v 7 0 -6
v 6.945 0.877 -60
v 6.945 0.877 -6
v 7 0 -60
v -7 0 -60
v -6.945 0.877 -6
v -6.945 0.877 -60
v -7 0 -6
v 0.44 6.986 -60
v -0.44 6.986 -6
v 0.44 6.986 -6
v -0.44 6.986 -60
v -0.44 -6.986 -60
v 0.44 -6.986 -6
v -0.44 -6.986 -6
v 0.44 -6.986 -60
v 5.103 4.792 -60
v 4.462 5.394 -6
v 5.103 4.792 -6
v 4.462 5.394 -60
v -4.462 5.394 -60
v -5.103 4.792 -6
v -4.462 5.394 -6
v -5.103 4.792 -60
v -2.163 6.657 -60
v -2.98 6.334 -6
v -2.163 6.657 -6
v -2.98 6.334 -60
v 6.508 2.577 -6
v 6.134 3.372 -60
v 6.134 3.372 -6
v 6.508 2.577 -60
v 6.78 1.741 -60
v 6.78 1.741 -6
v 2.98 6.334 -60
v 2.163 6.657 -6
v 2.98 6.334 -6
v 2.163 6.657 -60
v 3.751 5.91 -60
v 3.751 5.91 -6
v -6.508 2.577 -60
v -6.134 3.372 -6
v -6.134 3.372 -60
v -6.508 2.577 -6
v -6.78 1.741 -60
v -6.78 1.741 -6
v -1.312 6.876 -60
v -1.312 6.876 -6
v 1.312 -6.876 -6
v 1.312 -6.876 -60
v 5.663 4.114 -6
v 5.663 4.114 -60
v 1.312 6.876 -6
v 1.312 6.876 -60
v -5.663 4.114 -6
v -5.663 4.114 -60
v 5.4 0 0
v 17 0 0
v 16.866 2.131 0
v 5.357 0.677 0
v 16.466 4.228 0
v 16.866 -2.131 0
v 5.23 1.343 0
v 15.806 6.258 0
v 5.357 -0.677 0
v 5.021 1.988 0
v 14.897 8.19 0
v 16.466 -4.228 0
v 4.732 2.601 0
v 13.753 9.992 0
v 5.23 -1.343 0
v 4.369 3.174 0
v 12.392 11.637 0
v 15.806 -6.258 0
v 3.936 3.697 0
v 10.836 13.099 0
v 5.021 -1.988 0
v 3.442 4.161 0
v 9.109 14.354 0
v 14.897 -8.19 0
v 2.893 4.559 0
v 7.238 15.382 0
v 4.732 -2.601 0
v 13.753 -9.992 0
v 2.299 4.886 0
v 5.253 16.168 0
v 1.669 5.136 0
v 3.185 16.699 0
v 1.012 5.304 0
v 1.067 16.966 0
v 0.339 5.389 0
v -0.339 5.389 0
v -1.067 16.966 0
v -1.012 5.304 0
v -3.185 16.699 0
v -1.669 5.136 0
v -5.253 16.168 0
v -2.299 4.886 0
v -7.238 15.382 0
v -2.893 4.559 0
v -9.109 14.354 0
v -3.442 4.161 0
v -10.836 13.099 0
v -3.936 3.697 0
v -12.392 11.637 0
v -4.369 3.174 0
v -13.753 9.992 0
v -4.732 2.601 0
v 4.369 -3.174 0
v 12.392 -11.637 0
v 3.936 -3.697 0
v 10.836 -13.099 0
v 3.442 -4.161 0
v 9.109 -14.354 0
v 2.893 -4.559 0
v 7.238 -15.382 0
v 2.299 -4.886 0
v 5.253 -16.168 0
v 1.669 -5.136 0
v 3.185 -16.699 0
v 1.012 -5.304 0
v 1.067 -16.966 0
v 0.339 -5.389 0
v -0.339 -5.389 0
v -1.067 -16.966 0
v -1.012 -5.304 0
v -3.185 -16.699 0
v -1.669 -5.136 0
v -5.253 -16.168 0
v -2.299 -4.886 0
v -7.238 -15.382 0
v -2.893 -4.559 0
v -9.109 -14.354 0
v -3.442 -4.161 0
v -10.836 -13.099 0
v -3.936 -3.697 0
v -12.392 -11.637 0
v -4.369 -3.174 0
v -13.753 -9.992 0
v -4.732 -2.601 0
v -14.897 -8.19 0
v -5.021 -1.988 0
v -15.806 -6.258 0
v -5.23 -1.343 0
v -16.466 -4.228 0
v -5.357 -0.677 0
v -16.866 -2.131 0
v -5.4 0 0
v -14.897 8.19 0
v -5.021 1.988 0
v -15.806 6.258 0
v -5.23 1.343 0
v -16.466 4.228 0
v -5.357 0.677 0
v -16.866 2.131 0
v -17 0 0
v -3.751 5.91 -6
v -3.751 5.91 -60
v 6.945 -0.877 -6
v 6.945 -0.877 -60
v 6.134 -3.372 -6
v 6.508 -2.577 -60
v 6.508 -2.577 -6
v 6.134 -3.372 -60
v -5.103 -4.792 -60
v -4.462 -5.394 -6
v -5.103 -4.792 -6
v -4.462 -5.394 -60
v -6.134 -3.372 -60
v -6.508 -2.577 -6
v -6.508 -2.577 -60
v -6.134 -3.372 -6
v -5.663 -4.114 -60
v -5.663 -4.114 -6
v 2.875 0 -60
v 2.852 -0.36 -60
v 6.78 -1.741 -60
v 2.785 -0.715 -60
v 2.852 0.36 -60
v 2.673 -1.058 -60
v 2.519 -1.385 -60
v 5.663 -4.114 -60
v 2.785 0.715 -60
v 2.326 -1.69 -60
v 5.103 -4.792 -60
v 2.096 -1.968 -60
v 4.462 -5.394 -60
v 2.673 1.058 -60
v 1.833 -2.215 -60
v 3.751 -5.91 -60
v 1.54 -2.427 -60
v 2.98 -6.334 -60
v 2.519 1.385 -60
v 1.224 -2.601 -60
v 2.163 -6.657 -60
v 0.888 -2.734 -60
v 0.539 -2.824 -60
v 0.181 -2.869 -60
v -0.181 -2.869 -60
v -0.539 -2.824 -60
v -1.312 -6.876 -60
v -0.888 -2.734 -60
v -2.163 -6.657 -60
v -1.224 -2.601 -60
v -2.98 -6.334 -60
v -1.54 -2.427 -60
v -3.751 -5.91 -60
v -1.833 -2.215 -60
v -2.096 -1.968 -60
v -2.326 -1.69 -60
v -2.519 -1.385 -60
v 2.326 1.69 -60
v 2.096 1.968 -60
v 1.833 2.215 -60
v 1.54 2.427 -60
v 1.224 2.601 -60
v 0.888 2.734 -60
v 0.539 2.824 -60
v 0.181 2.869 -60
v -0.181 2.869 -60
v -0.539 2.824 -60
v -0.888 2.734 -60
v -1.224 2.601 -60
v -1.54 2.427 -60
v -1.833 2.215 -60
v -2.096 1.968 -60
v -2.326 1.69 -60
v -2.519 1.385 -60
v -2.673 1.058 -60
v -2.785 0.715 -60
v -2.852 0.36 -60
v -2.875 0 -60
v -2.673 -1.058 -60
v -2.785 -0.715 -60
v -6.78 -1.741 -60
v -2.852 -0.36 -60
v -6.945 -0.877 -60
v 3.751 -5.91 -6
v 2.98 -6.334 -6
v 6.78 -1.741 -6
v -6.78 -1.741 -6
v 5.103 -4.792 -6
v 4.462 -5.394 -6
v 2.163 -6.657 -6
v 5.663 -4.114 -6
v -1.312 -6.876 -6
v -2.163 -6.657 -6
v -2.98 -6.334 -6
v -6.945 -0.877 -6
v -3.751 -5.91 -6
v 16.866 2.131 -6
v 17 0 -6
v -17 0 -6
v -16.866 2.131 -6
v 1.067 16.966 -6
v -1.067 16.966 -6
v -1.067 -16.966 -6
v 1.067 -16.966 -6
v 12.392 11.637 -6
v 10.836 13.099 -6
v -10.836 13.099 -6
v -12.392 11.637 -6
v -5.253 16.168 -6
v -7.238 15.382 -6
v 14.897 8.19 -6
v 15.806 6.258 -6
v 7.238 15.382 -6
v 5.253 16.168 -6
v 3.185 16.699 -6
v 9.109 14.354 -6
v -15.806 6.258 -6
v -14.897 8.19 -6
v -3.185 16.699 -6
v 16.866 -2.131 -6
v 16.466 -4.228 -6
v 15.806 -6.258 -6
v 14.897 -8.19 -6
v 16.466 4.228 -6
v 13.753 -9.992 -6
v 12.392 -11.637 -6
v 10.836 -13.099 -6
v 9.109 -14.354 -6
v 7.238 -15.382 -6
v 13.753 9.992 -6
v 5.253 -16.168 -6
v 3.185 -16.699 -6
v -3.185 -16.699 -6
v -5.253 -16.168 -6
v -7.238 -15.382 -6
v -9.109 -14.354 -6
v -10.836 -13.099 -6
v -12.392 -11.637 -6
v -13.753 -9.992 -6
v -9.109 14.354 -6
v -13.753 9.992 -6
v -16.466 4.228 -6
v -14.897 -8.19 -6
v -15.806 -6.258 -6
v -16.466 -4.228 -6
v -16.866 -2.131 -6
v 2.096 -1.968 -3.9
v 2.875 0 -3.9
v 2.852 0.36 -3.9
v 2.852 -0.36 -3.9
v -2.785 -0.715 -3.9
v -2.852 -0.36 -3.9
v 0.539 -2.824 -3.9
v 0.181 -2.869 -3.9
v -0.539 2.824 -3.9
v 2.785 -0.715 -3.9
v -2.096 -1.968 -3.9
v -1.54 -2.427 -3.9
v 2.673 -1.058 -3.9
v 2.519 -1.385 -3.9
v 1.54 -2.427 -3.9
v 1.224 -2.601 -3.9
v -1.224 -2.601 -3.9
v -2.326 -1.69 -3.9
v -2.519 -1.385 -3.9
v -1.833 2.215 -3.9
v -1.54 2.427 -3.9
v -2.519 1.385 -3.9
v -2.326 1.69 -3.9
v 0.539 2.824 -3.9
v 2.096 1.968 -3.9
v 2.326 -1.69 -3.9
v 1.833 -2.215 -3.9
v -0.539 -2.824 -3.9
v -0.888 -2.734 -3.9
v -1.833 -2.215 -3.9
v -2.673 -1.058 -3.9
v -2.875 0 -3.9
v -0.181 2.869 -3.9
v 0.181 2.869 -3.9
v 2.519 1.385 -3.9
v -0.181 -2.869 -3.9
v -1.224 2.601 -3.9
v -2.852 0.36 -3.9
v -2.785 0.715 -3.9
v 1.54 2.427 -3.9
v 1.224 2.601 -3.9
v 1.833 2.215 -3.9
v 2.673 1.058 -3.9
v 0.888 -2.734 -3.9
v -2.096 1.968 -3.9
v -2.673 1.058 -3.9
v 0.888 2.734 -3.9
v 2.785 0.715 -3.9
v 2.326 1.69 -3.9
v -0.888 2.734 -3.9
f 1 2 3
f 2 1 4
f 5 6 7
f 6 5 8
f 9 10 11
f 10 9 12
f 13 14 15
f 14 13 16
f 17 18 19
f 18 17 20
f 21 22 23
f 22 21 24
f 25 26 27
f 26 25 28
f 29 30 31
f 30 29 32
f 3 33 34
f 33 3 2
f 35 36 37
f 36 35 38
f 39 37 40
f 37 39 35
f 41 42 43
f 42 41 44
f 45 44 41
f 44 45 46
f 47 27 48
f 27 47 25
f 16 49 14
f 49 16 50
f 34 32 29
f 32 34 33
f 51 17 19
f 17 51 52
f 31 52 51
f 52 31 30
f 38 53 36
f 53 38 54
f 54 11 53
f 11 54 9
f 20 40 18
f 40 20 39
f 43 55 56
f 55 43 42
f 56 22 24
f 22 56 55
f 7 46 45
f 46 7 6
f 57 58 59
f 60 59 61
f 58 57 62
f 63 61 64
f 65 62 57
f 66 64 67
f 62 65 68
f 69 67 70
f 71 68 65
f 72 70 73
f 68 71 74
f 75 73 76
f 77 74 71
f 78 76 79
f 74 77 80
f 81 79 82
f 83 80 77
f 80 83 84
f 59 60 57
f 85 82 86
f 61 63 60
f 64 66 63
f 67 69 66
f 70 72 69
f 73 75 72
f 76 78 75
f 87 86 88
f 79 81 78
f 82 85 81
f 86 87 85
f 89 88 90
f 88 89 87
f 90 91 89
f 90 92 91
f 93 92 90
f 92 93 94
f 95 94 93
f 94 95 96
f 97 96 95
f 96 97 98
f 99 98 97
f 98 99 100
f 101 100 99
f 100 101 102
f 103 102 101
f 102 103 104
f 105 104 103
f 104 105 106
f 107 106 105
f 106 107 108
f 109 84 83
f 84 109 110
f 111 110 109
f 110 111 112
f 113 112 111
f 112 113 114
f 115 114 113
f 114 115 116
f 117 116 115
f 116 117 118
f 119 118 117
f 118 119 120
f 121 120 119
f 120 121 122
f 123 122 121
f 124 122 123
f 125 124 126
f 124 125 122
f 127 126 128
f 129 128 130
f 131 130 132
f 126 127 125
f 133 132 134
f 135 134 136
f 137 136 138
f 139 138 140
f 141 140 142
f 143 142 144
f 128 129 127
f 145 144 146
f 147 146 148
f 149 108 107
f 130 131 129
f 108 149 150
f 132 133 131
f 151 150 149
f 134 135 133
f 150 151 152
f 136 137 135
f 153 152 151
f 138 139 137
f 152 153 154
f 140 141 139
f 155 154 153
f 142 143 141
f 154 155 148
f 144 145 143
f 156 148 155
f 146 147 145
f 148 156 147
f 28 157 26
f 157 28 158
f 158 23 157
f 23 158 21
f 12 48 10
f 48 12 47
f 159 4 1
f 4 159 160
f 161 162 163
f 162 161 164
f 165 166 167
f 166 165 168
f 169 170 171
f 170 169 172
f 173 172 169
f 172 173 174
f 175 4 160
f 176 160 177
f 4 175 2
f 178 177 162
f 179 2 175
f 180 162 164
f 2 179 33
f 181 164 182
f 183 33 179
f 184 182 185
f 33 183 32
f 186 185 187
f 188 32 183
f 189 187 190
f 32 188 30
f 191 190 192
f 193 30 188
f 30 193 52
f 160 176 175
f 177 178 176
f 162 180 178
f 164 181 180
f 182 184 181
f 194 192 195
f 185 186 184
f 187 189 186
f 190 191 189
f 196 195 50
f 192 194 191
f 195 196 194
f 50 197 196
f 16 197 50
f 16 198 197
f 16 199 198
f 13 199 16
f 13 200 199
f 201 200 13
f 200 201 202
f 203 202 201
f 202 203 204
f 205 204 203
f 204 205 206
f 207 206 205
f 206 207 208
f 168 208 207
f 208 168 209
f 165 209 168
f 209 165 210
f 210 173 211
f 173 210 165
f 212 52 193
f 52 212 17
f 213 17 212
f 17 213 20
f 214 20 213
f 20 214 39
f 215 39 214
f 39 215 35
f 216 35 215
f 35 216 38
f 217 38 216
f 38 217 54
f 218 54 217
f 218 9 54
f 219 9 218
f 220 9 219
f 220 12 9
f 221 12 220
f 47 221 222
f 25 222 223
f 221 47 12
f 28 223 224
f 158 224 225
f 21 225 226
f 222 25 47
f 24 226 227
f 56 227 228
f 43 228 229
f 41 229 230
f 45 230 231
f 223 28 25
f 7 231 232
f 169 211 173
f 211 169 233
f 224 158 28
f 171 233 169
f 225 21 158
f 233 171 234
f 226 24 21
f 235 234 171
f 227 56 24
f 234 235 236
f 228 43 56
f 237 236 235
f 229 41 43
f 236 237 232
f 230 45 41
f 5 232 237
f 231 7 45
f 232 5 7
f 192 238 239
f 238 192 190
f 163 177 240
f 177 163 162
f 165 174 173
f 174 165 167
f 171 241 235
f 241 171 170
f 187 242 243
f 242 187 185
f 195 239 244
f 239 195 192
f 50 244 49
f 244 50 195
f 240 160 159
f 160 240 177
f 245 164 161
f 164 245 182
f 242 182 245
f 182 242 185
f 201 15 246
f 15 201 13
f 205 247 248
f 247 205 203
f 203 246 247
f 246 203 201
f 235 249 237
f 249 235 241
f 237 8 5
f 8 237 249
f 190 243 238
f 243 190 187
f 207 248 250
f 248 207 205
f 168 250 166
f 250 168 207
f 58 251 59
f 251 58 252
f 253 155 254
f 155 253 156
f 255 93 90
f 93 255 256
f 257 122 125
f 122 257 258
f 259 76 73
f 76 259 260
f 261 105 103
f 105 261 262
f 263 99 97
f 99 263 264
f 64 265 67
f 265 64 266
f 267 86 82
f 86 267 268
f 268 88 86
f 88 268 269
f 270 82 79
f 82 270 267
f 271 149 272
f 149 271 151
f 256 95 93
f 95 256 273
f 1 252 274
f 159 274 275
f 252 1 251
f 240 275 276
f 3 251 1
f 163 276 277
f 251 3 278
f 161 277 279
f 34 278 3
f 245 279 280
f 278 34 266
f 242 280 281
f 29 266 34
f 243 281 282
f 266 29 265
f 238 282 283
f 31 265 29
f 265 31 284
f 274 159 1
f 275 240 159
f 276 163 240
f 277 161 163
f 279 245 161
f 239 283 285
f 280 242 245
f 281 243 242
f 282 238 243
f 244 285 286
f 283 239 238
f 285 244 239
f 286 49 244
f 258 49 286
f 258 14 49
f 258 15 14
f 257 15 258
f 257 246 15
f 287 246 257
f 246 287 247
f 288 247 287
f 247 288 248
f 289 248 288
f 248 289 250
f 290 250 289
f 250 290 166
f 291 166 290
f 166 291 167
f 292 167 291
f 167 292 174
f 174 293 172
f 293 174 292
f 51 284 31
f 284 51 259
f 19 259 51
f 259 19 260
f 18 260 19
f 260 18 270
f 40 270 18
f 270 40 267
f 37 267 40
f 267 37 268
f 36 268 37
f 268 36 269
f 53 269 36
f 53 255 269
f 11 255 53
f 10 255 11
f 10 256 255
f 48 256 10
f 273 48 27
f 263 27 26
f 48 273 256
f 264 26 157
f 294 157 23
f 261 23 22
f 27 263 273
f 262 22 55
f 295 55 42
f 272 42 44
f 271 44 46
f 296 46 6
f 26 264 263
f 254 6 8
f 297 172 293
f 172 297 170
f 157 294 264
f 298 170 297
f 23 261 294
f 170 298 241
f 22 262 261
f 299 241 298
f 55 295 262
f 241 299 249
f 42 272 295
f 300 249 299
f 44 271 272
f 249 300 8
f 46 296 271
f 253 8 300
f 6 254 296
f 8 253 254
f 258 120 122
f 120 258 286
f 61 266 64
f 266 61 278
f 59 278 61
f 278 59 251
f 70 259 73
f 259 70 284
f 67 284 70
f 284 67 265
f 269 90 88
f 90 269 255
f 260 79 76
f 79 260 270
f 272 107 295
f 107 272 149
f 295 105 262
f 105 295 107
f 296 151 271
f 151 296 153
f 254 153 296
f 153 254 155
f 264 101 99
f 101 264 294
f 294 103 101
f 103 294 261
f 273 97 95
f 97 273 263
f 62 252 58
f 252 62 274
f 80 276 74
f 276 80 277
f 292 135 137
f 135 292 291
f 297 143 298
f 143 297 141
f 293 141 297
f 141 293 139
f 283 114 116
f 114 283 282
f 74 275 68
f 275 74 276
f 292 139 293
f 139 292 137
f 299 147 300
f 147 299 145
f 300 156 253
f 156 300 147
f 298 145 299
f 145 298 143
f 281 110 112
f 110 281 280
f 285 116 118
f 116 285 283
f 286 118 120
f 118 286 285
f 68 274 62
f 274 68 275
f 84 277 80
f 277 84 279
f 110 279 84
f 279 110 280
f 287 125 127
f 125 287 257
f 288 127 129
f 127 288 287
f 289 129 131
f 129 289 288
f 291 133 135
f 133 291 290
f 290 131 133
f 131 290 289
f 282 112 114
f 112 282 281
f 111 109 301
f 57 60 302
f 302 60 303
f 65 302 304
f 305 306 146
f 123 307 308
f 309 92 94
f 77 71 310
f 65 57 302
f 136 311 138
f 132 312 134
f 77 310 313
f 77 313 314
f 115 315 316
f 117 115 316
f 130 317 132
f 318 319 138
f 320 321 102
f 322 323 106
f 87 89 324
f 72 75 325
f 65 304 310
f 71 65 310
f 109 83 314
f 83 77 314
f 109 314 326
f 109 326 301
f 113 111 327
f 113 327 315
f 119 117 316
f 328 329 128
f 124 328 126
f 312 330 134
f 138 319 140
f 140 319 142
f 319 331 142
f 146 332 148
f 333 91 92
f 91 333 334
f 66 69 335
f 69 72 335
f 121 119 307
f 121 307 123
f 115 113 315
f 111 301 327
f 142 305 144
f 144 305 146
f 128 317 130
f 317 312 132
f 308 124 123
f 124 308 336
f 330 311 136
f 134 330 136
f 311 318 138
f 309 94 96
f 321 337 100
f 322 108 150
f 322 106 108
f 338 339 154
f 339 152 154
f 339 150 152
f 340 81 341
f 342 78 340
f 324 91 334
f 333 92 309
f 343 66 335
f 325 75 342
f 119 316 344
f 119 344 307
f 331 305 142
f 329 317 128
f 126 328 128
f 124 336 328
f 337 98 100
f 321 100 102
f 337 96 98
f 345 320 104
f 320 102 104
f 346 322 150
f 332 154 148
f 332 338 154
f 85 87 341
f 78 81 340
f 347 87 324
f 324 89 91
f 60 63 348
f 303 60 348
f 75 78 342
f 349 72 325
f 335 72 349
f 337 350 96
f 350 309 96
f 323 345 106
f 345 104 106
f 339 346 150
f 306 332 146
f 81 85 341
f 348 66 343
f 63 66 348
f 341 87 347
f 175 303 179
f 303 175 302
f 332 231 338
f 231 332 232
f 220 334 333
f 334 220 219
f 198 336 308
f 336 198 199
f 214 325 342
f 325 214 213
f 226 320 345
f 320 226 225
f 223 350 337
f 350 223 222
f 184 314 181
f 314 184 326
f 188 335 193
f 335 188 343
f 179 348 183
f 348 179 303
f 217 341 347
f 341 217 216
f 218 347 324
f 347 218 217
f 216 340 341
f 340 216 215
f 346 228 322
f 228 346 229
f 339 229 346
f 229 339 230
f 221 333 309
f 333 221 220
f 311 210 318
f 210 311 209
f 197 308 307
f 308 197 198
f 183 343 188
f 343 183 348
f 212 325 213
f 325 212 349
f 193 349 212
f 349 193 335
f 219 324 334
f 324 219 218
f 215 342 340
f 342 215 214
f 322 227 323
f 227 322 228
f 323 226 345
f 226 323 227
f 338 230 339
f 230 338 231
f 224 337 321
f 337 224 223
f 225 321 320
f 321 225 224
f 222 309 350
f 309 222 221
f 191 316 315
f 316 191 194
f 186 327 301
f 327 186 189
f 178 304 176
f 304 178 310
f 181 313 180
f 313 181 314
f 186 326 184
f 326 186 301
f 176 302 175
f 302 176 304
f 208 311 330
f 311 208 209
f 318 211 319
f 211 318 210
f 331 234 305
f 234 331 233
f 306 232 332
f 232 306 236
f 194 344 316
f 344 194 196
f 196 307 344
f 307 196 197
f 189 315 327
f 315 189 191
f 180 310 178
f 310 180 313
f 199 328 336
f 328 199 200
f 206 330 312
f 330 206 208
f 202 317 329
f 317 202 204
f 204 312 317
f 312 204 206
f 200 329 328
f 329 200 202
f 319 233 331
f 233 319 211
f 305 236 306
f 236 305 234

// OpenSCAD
$fn = 50;


difference() {
	union() {
		translate(v = [0, 0, -60.0000000000]) {
			cylinder(h = 60, r = 7.0000000000);
		}
		translate(v = [0, 0, -6.0000000000]) {
			cylinder(h = 6, r = 17.0000000000);
		}
	}
	union() {
		translate(v = [0, 0, 0]) {
			rotate(a = [0, 0, 0]) {
				difference() {
					union() {
						#translate(v = [0, 0, -60.0000000000]) {
							cylinder(h = 60, r = 2.6000000000);
						}
						#translate(v = [0, 0, -3.9000000000]) {
							cylinder(h = 3.9000000000, r1 = 2.8750000000, r2 = 5.4000000000);
						}
						#translate(v = [0, 0, -60.0000000000]) {
							cylinder(h = 60, r = 2.8750000000);
						}
						#translate(v = [0, 0, -60.0000000000]) {
							cylinder(h = 60, r = 2.6000000000);
						}
					}
					union();
				}
			}
		}
	}
}
